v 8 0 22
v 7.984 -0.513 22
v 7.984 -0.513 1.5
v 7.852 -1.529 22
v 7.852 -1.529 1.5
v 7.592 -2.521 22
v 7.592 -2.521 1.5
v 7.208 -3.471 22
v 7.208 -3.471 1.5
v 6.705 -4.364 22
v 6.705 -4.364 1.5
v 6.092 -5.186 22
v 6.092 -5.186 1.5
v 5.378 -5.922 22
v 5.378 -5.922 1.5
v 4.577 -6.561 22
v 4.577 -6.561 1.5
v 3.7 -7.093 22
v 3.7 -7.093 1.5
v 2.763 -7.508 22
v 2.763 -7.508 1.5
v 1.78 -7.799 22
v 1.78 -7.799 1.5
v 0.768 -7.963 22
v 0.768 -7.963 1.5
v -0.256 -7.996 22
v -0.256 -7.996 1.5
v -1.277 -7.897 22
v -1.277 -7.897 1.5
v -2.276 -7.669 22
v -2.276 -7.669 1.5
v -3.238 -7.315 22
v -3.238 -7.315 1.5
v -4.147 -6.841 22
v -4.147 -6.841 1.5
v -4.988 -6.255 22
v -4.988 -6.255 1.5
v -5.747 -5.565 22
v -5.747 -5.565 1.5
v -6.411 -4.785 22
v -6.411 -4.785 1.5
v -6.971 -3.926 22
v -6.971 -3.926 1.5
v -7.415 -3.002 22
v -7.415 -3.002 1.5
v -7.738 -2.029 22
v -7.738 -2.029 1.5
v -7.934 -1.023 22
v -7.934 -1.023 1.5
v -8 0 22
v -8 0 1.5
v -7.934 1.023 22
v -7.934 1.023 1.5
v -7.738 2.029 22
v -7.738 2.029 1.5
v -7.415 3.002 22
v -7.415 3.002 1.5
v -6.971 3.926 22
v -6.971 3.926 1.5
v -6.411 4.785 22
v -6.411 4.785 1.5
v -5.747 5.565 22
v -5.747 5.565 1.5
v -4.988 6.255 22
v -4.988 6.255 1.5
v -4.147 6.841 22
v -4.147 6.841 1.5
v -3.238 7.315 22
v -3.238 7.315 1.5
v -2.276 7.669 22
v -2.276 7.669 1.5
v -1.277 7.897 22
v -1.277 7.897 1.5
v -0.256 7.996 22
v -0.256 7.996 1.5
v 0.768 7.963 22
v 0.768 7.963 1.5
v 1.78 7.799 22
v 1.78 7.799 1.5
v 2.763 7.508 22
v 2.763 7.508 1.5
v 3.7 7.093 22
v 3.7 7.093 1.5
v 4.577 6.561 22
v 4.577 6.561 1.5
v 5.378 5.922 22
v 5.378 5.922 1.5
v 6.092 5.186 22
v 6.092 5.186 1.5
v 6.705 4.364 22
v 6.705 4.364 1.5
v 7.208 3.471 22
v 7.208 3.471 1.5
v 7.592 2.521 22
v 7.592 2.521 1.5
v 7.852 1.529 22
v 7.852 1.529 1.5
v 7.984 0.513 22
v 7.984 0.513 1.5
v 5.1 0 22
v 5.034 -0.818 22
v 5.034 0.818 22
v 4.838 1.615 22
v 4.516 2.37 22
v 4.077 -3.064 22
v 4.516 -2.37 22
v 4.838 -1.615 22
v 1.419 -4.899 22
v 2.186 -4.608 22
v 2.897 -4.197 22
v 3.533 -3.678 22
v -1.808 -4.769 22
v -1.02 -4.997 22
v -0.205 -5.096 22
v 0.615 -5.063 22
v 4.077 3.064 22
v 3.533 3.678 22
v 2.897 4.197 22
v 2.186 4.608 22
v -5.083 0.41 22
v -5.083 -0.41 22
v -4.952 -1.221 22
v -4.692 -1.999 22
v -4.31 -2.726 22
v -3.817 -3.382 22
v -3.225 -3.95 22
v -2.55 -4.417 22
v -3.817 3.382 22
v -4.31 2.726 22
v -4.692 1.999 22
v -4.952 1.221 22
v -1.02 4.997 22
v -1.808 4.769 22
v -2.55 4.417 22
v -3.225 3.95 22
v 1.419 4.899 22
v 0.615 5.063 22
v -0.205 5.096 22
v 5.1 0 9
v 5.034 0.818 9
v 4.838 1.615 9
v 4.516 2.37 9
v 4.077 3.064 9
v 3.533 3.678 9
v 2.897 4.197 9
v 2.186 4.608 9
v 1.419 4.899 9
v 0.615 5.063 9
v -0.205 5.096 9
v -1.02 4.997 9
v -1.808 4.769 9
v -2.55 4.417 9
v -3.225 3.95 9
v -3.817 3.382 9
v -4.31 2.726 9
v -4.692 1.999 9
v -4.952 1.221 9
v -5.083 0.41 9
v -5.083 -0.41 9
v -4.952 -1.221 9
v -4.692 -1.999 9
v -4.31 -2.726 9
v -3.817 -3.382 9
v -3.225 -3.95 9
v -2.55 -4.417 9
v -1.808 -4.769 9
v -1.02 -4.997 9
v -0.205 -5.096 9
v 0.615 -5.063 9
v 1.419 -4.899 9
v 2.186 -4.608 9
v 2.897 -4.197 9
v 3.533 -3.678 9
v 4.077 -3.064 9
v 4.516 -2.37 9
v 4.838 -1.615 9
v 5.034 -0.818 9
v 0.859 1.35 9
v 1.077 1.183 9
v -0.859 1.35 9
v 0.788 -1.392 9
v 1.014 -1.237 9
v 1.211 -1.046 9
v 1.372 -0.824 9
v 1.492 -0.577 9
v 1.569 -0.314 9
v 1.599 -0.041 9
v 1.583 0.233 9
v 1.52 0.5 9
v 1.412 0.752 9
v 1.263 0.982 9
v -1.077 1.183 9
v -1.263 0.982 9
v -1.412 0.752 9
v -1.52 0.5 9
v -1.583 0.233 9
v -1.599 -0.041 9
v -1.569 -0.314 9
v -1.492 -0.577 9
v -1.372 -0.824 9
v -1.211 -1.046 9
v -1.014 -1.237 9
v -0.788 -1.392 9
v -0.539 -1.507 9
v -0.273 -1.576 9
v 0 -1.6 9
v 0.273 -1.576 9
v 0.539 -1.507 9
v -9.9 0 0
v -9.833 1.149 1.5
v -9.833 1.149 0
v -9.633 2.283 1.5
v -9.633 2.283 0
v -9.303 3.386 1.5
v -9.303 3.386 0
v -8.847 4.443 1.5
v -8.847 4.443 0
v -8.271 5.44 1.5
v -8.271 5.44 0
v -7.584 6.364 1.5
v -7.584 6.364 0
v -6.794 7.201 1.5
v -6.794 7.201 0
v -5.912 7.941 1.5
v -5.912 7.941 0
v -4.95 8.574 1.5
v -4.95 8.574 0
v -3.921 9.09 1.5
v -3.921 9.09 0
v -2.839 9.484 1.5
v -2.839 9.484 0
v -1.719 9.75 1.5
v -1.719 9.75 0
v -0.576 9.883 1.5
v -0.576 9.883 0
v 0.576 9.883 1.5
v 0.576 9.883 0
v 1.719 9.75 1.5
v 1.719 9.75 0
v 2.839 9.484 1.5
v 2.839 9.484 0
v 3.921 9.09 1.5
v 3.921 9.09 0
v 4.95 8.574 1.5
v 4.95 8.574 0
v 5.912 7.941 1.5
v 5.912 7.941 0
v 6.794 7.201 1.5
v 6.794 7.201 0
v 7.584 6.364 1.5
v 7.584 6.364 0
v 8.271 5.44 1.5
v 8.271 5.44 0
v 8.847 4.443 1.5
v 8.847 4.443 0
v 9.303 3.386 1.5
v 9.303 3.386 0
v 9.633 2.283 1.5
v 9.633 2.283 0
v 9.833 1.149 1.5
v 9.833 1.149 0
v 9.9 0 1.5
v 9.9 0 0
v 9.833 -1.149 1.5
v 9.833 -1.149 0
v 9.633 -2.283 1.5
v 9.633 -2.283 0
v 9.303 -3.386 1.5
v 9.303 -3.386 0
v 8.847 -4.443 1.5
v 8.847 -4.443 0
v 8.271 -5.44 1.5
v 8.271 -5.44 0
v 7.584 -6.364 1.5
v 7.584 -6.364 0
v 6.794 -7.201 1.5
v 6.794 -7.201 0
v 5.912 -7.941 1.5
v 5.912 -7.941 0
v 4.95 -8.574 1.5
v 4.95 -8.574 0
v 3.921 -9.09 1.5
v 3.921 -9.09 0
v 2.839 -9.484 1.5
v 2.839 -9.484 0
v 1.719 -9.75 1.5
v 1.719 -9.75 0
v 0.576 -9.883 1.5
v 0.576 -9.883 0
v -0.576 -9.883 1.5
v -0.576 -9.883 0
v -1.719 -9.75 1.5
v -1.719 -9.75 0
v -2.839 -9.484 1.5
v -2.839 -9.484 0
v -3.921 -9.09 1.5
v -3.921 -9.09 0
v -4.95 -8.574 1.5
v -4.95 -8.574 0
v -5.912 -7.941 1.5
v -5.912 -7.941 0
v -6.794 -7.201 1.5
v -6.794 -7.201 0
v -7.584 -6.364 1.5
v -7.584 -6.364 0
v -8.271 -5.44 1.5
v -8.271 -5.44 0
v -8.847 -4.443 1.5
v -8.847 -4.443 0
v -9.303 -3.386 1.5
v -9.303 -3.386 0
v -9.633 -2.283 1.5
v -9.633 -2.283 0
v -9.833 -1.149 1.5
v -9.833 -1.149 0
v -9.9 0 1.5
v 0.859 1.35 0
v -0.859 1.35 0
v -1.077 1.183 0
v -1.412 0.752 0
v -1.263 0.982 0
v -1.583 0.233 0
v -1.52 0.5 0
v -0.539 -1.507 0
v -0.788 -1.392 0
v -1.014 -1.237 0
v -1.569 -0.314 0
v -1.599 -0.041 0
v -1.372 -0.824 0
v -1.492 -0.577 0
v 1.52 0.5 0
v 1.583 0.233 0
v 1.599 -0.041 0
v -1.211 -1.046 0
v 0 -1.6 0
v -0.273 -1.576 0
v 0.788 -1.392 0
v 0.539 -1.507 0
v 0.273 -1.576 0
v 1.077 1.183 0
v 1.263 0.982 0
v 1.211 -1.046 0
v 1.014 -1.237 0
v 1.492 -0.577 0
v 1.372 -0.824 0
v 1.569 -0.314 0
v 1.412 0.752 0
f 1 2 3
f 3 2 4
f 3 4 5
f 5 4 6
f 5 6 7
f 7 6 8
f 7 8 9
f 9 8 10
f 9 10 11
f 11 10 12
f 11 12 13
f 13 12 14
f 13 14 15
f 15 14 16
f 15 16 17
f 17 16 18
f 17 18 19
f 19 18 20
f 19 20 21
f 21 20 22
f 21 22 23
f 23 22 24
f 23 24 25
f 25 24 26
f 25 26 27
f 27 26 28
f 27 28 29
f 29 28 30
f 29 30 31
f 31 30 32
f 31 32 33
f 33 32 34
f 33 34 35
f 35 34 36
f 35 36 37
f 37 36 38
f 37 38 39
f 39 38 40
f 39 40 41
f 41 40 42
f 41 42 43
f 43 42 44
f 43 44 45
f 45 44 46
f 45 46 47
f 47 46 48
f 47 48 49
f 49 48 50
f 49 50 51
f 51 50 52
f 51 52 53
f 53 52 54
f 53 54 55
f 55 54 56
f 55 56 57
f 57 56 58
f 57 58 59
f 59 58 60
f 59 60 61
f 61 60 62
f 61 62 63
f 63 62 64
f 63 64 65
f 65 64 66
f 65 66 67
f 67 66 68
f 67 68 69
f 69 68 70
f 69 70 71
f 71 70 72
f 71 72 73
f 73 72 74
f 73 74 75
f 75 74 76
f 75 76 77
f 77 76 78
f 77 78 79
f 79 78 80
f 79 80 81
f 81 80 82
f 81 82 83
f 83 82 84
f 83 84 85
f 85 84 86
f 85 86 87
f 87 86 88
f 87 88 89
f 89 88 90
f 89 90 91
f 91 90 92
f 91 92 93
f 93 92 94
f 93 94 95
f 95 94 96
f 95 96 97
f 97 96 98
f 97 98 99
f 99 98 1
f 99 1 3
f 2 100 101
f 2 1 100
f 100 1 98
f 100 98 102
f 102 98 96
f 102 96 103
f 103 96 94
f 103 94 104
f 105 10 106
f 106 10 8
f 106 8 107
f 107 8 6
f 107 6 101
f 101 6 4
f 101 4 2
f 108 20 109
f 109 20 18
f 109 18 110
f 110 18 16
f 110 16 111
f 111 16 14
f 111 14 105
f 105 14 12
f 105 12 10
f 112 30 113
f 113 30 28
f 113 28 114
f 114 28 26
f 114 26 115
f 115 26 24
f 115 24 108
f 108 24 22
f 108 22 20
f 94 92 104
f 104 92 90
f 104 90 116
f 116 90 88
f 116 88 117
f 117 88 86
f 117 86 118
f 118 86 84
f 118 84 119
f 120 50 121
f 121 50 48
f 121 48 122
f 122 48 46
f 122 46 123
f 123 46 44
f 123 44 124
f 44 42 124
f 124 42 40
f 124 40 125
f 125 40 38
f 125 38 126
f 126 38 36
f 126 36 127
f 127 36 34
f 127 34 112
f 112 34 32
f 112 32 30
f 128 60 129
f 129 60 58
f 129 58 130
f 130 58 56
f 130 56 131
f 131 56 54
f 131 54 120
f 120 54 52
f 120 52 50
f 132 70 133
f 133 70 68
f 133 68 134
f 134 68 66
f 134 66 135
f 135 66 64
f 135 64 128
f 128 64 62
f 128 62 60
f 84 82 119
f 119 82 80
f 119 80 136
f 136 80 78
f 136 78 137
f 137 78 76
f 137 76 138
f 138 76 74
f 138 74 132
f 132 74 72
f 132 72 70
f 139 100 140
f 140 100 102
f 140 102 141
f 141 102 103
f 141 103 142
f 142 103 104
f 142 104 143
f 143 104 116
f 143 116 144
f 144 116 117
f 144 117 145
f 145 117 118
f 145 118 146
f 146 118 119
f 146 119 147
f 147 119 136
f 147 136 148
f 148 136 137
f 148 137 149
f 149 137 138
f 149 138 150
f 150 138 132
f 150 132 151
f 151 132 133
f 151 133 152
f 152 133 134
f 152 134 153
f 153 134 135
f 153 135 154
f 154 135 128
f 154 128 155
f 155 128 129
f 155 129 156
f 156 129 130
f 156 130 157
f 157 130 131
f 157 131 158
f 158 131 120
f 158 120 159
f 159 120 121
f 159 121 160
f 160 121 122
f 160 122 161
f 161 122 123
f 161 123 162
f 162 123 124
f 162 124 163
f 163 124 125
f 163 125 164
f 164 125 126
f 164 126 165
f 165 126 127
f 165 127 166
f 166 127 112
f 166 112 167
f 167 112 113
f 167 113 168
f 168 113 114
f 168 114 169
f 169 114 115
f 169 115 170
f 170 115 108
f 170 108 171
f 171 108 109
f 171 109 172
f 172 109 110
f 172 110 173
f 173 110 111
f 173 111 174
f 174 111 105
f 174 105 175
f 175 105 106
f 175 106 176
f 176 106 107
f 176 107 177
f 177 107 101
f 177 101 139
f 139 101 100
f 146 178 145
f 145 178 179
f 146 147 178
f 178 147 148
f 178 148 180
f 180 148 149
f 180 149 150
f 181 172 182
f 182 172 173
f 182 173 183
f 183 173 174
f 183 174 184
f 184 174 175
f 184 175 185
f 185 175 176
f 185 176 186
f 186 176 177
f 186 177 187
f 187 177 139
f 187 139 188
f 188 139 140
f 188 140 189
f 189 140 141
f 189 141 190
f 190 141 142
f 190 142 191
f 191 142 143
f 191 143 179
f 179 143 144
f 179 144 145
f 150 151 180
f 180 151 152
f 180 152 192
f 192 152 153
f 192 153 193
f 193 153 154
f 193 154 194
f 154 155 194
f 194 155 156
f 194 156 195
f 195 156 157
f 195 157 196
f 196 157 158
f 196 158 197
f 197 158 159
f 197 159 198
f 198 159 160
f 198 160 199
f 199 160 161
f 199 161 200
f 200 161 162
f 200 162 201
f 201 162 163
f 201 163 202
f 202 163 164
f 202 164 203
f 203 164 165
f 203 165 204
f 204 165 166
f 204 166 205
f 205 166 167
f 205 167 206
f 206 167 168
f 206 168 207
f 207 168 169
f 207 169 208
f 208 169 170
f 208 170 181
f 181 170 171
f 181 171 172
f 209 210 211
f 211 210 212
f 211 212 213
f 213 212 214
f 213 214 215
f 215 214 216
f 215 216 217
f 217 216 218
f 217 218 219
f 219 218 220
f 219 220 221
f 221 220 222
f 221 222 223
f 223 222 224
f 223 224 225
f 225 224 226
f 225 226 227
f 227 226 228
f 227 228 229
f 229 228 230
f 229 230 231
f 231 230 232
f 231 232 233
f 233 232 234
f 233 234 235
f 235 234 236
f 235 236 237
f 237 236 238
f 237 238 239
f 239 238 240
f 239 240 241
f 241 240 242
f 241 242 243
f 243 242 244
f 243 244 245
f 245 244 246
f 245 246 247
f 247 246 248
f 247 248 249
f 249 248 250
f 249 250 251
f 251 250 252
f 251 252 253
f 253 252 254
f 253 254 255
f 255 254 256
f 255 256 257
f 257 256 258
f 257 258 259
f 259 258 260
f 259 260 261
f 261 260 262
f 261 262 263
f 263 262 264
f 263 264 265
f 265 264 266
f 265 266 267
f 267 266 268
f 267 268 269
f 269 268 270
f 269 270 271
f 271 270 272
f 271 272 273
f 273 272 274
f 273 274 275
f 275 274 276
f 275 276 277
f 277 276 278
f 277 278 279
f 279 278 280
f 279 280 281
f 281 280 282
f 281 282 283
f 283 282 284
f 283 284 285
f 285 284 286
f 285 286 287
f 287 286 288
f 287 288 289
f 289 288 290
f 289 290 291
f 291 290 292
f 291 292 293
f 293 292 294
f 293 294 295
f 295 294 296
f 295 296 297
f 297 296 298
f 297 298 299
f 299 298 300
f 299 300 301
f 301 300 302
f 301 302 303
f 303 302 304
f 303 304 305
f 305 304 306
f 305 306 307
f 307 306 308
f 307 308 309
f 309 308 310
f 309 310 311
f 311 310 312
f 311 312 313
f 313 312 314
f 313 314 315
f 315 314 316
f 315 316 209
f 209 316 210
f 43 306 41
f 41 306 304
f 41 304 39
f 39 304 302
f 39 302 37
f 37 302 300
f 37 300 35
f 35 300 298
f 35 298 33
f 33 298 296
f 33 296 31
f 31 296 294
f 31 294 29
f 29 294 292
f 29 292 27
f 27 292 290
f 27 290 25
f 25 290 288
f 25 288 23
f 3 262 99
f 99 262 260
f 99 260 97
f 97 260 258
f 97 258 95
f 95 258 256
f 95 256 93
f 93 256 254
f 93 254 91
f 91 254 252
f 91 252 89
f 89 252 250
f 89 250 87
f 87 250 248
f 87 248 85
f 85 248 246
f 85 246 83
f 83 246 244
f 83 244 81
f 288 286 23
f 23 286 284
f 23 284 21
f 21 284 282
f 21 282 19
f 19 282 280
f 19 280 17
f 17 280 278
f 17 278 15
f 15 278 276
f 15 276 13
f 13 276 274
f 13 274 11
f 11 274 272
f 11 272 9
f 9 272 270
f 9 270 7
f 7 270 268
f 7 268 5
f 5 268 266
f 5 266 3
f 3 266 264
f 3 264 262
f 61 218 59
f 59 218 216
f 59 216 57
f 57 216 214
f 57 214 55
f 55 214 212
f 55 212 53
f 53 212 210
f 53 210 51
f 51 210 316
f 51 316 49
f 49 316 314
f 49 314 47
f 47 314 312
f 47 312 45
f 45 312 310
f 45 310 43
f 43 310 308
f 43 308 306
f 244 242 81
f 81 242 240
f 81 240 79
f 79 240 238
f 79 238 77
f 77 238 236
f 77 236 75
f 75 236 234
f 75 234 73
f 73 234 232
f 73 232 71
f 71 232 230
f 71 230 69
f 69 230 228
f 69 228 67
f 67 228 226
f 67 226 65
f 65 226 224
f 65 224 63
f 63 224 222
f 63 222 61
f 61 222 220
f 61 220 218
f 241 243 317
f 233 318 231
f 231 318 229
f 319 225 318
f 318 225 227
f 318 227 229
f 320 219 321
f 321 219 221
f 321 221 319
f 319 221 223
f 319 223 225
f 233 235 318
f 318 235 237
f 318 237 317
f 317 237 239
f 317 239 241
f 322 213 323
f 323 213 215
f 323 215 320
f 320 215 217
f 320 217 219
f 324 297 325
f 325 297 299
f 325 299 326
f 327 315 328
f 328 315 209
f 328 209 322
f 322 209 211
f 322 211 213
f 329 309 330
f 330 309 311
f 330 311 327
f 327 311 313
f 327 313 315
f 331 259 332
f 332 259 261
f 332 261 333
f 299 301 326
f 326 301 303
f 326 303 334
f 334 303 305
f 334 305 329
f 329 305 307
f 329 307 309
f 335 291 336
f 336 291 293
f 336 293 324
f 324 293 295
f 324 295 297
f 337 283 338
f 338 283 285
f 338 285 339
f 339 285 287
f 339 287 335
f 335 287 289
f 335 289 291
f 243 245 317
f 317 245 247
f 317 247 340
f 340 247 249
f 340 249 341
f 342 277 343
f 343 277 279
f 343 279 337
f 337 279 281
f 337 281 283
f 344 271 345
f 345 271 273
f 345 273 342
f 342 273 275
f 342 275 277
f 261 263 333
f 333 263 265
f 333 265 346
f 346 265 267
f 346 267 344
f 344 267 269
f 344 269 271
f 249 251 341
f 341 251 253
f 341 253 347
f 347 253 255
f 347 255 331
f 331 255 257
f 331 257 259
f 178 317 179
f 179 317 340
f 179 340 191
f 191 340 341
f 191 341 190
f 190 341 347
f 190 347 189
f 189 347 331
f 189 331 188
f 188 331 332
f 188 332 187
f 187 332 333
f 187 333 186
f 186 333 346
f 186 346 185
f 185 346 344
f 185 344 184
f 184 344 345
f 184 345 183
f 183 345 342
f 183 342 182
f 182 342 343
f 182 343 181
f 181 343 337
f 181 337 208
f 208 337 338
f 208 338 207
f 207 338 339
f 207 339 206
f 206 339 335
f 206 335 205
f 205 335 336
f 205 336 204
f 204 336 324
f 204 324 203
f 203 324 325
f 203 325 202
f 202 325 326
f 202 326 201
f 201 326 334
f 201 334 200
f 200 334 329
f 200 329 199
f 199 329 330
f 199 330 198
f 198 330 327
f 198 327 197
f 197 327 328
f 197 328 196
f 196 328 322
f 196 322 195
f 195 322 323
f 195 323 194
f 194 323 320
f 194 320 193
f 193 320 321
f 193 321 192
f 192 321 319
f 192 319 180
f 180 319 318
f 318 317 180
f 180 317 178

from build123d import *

# Parameters (mm, degrees)
SKETCH1_R           = 8
BOSS_EXTRUDE1_DEPTH = 22
SKETCH2_R           = 5.1
CUT_EXTRUDE1_DEPTH  = 13
SKETCH4_R           = 9.9
BOSS_EXTRUDE2_DEPTH = 1.5
CUT_EXTRUDE2_DEPTH  = 23


with BuildPart() as part:
    # Sketch1 → Boss-Extrude1 (new body)
    with BuildSketch(Plane.XY):
        Circle(SKETCH1_R)
    extrude(amount=BOSS_EXTRUDE1_DEPTH)

    # Sketch2 → Cut-Extrude1 (cut)
    with BuildSketch(Plane.XY.offset(22)):
        Circle(SKETCH2_R)
    extrude(amount=-CUT_EXTRUDE1_DEPTH, mode=Mode.SUBTRACT)

    # Sketch4 → Boss-Extrude2 (add)
    with BuildSketch(Plane(origin=(0, 0, 0), x_dir=(-1, 0, 0), z_dir=(0, 0, -1))):
        Circle(SKETCH4_R)
    extrude(amount=-BOSS_EXTRUDE2_DEPTH)

    # Sketch3 → Cut-Extrude2 (cut, through all)
    with BuildSketch(Plane(origin=(0, 0, 0), x_dir=(-1, 0, 0), z_dir=(0, 0, -1))):
        with BuildLine():
            Line((-0.858778202, 1.35), (0.858778202, 1.35))
            ThreePointArc((0.858778202, 1.35), (0, -1.6), (-0.858778202, 1.35))
        make_face()
    extrude(amount=-CUT_EXTRUDE2_DEPTH, mode=Mode.SUBTRACT)


solid = part.part
